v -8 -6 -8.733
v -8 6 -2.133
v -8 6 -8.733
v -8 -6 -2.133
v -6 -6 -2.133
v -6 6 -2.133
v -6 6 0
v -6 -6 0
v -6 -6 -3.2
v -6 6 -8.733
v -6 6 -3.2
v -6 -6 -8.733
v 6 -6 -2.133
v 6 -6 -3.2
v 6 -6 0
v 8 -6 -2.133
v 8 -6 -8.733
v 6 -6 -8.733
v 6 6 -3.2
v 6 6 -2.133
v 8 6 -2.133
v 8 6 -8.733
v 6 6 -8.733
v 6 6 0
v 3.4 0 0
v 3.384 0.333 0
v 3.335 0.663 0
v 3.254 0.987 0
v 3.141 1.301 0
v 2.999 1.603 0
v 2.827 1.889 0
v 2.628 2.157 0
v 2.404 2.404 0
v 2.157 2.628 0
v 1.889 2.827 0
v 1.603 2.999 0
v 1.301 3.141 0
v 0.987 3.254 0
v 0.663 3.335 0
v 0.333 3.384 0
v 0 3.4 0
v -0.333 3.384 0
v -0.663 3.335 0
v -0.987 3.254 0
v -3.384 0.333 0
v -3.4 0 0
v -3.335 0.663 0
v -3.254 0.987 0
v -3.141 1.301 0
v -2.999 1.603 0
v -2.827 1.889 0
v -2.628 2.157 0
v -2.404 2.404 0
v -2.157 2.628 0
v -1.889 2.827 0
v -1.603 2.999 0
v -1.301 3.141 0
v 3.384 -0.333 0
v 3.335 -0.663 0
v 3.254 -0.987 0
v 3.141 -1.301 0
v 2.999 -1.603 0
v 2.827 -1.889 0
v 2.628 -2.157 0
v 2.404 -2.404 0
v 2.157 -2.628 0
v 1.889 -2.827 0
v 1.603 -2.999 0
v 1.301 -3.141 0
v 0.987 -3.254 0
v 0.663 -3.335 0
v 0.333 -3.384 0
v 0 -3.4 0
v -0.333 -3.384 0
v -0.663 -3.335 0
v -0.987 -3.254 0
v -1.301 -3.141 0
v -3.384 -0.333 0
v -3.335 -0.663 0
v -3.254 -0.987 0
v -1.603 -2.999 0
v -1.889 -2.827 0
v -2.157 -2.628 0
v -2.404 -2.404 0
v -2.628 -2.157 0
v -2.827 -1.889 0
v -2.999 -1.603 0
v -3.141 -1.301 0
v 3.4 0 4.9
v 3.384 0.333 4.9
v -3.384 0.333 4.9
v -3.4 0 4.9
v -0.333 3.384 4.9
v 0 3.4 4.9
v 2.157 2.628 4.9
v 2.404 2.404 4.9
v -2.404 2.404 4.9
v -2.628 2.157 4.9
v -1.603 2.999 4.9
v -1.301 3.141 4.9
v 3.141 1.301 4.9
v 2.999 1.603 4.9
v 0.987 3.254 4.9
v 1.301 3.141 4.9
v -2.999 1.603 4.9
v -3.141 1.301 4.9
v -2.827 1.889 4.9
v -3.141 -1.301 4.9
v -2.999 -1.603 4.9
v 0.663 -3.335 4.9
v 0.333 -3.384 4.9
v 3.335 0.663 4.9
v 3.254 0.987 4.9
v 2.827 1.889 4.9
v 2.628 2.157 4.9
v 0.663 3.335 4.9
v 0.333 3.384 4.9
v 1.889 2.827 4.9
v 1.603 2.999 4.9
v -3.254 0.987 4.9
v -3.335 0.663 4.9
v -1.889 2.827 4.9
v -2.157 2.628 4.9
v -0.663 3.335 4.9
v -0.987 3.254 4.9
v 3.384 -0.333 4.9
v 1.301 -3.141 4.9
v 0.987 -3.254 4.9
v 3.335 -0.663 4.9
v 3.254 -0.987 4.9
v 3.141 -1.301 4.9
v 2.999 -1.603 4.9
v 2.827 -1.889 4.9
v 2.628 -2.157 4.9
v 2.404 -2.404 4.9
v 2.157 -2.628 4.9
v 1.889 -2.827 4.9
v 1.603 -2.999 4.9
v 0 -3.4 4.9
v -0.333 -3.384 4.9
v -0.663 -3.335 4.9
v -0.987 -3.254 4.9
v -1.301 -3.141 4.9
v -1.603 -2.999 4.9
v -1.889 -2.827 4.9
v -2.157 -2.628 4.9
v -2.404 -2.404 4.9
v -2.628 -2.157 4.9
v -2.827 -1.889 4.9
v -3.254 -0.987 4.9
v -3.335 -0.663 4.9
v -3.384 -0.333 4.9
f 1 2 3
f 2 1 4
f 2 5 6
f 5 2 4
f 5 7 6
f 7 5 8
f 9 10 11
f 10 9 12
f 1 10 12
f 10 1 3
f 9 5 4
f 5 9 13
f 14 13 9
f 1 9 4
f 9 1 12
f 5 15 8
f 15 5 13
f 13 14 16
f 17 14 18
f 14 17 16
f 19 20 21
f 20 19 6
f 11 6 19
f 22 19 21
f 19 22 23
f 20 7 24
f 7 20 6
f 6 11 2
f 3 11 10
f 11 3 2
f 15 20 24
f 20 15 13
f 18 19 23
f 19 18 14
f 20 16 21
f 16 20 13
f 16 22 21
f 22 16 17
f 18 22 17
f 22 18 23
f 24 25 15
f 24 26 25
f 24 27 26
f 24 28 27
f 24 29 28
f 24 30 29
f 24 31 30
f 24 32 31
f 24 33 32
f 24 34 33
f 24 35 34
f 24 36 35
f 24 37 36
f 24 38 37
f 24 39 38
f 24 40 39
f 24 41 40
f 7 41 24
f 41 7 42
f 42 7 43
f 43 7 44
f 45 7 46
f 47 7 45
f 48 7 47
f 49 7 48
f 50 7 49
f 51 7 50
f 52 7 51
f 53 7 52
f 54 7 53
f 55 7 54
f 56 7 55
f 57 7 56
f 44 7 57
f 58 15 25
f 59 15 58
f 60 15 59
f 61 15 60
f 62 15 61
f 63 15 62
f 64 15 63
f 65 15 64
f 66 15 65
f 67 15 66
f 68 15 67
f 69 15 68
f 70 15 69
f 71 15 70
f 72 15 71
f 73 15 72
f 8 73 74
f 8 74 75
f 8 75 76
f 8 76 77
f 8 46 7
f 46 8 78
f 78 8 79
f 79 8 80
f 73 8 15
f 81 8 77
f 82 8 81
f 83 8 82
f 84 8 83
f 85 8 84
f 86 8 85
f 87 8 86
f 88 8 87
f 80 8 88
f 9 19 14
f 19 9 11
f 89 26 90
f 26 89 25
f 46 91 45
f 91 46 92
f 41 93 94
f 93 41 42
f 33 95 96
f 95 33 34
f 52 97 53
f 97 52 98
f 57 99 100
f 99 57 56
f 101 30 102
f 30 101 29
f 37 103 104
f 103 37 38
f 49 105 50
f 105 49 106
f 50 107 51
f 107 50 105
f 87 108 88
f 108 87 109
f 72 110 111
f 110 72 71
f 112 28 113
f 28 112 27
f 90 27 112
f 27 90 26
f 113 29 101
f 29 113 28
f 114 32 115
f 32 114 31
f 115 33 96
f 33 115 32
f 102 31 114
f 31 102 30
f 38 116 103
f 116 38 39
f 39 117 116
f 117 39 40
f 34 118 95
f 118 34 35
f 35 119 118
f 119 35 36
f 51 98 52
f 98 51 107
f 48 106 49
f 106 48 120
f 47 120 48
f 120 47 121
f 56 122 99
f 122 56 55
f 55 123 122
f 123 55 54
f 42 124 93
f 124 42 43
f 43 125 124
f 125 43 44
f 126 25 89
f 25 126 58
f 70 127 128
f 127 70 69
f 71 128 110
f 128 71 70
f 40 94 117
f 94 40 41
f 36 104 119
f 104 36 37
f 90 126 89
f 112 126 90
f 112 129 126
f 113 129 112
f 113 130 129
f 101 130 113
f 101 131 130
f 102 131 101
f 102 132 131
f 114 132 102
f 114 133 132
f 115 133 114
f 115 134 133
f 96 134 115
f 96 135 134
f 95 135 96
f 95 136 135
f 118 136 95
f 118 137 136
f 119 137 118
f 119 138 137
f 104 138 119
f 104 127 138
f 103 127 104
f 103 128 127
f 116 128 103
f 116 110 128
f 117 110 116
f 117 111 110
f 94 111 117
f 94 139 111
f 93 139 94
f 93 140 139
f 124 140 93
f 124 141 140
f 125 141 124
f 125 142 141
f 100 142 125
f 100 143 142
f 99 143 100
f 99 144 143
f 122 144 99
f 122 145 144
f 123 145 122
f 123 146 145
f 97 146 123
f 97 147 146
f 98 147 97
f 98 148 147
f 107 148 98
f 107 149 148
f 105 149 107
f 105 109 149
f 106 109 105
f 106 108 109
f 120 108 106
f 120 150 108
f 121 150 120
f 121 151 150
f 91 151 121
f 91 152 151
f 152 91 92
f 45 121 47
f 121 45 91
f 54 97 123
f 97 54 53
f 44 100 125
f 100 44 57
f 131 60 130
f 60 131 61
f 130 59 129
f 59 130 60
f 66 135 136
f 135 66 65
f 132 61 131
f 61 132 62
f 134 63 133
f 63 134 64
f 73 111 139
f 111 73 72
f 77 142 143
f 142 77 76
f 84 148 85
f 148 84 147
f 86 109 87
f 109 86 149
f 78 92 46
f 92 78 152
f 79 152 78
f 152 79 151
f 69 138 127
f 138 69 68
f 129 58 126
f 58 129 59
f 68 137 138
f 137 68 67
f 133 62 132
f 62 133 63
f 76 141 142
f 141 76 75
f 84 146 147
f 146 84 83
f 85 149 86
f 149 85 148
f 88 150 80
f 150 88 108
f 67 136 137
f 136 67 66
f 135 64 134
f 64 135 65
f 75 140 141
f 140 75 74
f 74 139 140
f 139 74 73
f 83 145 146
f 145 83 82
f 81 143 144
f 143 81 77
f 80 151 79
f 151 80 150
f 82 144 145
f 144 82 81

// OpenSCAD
// m3 bolt negative space

$fn=64;

base_side = 12;
base_height = 3.2;

button_radius = 6.8/2;
button_height = 4.9;

prong_width=2;
prong_length=base_height/2 + 5;

push_button();

module push_button() {
    color("blue") base();
    color("black") button();
    color("silver") prongs();
}

module base() {
    translate([-base_side/2,-base_side/2,-base_height]) cube([base_side,base_side,base_height]);
}

module button() {
    cylinder(r=button_radius, h=button_height);
}

module prongs() {
    prong(-base_side/2 - prong_width);
    prong(base_side/2);
}

module prong(x=0) {
    translate([x,-base_side/2,-2*base_height/3 - prong_length]) cube([prong_width,base_side,prong_length]);
}
